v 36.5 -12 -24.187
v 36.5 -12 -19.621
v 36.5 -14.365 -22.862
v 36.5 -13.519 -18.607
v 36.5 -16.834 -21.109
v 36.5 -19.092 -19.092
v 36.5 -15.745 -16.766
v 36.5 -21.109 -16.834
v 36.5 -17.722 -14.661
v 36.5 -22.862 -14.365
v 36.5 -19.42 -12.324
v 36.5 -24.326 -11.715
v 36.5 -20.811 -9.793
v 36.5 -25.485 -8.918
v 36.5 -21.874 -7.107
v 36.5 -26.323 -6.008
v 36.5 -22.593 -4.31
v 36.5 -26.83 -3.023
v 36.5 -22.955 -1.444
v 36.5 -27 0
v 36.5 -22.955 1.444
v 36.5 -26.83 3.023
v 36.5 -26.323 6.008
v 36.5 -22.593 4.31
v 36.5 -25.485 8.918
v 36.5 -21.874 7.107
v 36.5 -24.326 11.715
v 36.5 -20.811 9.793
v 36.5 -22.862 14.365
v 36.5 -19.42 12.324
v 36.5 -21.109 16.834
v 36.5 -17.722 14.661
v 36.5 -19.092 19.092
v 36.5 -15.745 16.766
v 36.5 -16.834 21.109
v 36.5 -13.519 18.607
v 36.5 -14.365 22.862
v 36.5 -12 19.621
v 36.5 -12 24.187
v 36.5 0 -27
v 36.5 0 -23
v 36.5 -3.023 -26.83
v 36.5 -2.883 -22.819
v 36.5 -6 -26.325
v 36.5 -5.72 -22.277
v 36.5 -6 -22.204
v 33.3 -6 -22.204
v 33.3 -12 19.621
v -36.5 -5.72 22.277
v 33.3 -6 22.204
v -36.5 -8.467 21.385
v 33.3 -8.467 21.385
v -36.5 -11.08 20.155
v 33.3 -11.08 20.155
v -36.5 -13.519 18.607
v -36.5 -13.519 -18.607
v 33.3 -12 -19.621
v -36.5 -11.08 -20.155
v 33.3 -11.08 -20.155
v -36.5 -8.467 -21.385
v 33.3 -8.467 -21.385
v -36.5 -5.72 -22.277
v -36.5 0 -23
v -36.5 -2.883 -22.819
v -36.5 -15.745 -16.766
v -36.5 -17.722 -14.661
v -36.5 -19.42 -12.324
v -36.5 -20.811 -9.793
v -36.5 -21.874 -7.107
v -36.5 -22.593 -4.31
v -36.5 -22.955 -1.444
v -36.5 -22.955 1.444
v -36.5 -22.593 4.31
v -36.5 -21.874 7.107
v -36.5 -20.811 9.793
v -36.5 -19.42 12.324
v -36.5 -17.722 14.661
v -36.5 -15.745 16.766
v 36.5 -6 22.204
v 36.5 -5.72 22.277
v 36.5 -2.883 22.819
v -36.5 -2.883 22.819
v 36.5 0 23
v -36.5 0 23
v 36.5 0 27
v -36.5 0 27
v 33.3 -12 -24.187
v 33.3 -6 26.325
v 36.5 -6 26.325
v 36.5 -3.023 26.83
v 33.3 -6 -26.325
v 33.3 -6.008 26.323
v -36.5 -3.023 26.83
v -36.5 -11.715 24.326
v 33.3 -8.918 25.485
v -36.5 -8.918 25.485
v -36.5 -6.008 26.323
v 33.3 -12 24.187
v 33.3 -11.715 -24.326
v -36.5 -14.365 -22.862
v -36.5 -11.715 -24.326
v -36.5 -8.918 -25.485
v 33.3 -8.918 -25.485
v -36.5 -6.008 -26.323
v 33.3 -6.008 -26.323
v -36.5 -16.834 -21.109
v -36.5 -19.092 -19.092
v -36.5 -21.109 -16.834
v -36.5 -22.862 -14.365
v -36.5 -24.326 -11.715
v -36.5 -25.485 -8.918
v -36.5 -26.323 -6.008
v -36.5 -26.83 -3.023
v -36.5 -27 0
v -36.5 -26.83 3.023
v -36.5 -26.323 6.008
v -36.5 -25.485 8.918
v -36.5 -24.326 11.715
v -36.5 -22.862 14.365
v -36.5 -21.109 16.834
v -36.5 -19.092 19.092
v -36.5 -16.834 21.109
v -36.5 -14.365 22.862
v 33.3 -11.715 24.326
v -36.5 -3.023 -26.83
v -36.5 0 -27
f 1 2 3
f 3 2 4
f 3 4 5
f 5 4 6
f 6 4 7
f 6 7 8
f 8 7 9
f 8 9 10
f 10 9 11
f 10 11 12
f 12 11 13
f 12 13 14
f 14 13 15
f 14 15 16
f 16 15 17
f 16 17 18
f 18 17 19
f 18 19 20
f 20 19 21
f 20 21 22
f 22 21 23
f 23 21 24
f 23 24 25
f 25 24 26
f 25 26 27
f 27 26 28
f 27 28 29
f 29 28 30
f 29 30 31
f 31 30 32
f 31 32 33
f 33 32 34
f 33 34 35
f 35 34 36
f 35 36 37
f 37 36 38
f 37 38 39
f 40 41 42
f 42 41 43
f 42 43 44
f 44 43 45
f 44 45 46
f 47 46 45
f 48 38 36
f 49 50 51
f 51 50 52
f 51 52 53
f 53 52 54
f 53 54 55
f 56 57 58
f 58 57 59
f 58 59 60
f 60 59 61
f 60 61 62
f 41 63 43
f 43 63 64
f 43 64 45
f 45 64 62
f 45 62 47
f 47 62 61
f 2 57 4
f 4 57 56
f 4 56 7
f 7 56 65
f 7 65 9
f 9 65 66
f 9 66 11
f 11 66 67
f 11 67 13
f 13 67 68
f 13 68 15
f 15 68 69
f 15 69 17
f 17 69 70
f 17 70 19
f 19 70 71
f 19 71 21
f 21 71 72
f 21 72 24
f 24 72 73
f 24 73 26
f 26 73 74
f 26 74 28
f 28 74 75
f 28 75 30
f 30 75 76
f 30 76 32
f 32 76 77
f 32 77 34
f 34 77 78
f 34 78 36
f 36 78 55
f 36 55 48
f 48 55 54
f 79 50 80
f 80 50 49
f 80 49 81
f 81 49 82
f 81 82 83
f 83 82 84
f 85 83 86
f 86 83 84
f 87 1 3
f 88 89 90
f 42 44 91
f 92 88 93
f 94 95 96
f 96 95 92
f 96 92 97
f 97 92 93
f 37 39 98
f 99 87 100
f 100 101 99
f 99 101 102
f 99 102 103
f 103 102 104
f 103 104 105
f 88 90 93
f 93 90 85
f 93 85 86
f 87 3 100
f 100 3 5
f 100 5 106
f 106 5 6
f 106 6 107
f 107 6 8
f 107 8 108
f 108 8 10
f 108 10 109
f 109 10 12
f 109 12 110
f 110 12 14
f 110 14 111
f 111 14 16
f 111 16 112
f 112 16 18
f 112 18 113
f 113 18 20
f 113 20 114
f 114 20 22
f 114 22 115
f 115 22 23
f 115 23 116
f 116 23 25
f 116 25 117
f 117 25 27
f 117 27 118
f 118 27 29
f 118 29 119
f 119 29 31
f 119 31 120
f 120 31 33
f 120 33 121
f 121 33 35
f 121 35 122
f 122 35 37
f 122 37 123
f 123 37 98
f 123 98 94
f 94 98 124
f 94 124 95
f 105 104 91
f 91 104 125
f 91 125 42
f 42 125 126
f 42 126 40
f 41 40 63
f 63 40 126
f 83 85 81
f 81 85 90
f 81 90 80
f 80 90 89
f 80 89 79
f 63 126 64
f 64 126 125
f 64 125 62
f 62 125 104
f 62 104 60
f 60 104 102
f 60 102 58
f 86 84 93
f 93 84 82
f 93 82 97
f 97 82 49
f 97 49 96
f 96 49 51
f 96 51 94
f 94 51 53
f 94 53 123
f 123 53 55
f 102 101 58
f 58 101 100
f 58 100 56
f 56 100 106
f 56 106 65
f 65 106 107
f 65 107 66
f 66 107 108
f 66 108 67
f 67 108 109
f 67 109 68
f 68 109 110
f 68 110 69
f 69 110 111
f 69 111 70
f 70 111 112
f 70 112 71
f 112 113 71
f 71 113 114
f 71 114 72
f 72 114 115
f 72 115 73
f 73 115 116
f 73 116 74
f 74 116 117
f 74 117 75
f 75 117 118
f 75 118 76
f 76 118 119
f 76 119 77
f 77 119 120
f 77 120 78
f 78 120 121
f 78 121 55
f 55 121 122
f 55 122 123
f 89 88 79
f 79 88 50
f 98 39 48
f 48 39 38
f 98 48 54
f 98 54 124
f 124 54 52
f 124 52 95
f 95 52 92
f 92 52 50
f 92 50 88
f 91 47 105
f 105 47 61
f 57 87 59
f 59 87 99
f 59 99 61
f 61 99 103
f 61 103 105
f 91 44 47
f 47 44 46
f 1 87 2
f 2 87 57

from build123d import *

# Parameters (mm, degrees)
BOSS_EXTRUDE1_DEPTH     = 36.5
CUT_EXTRUDE1_DEPTH      = 53.82281704
CUT_EXTRUDE1_DEPTH_BACK = 3.2
CUT_EXTRUDE1_START      = 36.5
SKETCH2_W               = 57.250046972
SKETCH2_H               = 6


with BuildPart() as part:
    # Sketch1 → Boss-Extrude1 (new, symmetric)
    with BuildSketch(Plane(origin=(0, 0, 0), x_dir=(0, 0, -1), z_dir=(1, 0, 0))):
        with BuildLine():
            Line((-27, 0), (-23, 0))
            ThreePointArc((-23, 0), (0, -23), (23, 0))
            Line((23, 0), (27, 0))
            ThreePointArc((27, 0), (0, -27), (-27, 0))
        make_face()
    extrude(amount=BOSS_EXTRUDE1_DEPTH, both=True)

    # Sketch2 → Cut-Extrude1 (cut, two sides: drawn at the far end of the back side and taken through both)
    with BuildSketch(Plane(origin=(0, 0, 0), x_dir=(0, 0, -1), z_dir=(1, 0, 0)).offset(CUT_EXTRUDE1_START - CUT_EXTRUDE1_DEPTH_BACK)):
        with Locations((-0.586463896, -9)):
            Rectangle(SKETCH2_W, SKETCH2_H)
    extrude(amount=CUT_EXTRUDE1_DEPTH + CUT_EXTRUDE1_DEPTH_BACK, mode=Mode.SUBTRACT)


solid = part.part
